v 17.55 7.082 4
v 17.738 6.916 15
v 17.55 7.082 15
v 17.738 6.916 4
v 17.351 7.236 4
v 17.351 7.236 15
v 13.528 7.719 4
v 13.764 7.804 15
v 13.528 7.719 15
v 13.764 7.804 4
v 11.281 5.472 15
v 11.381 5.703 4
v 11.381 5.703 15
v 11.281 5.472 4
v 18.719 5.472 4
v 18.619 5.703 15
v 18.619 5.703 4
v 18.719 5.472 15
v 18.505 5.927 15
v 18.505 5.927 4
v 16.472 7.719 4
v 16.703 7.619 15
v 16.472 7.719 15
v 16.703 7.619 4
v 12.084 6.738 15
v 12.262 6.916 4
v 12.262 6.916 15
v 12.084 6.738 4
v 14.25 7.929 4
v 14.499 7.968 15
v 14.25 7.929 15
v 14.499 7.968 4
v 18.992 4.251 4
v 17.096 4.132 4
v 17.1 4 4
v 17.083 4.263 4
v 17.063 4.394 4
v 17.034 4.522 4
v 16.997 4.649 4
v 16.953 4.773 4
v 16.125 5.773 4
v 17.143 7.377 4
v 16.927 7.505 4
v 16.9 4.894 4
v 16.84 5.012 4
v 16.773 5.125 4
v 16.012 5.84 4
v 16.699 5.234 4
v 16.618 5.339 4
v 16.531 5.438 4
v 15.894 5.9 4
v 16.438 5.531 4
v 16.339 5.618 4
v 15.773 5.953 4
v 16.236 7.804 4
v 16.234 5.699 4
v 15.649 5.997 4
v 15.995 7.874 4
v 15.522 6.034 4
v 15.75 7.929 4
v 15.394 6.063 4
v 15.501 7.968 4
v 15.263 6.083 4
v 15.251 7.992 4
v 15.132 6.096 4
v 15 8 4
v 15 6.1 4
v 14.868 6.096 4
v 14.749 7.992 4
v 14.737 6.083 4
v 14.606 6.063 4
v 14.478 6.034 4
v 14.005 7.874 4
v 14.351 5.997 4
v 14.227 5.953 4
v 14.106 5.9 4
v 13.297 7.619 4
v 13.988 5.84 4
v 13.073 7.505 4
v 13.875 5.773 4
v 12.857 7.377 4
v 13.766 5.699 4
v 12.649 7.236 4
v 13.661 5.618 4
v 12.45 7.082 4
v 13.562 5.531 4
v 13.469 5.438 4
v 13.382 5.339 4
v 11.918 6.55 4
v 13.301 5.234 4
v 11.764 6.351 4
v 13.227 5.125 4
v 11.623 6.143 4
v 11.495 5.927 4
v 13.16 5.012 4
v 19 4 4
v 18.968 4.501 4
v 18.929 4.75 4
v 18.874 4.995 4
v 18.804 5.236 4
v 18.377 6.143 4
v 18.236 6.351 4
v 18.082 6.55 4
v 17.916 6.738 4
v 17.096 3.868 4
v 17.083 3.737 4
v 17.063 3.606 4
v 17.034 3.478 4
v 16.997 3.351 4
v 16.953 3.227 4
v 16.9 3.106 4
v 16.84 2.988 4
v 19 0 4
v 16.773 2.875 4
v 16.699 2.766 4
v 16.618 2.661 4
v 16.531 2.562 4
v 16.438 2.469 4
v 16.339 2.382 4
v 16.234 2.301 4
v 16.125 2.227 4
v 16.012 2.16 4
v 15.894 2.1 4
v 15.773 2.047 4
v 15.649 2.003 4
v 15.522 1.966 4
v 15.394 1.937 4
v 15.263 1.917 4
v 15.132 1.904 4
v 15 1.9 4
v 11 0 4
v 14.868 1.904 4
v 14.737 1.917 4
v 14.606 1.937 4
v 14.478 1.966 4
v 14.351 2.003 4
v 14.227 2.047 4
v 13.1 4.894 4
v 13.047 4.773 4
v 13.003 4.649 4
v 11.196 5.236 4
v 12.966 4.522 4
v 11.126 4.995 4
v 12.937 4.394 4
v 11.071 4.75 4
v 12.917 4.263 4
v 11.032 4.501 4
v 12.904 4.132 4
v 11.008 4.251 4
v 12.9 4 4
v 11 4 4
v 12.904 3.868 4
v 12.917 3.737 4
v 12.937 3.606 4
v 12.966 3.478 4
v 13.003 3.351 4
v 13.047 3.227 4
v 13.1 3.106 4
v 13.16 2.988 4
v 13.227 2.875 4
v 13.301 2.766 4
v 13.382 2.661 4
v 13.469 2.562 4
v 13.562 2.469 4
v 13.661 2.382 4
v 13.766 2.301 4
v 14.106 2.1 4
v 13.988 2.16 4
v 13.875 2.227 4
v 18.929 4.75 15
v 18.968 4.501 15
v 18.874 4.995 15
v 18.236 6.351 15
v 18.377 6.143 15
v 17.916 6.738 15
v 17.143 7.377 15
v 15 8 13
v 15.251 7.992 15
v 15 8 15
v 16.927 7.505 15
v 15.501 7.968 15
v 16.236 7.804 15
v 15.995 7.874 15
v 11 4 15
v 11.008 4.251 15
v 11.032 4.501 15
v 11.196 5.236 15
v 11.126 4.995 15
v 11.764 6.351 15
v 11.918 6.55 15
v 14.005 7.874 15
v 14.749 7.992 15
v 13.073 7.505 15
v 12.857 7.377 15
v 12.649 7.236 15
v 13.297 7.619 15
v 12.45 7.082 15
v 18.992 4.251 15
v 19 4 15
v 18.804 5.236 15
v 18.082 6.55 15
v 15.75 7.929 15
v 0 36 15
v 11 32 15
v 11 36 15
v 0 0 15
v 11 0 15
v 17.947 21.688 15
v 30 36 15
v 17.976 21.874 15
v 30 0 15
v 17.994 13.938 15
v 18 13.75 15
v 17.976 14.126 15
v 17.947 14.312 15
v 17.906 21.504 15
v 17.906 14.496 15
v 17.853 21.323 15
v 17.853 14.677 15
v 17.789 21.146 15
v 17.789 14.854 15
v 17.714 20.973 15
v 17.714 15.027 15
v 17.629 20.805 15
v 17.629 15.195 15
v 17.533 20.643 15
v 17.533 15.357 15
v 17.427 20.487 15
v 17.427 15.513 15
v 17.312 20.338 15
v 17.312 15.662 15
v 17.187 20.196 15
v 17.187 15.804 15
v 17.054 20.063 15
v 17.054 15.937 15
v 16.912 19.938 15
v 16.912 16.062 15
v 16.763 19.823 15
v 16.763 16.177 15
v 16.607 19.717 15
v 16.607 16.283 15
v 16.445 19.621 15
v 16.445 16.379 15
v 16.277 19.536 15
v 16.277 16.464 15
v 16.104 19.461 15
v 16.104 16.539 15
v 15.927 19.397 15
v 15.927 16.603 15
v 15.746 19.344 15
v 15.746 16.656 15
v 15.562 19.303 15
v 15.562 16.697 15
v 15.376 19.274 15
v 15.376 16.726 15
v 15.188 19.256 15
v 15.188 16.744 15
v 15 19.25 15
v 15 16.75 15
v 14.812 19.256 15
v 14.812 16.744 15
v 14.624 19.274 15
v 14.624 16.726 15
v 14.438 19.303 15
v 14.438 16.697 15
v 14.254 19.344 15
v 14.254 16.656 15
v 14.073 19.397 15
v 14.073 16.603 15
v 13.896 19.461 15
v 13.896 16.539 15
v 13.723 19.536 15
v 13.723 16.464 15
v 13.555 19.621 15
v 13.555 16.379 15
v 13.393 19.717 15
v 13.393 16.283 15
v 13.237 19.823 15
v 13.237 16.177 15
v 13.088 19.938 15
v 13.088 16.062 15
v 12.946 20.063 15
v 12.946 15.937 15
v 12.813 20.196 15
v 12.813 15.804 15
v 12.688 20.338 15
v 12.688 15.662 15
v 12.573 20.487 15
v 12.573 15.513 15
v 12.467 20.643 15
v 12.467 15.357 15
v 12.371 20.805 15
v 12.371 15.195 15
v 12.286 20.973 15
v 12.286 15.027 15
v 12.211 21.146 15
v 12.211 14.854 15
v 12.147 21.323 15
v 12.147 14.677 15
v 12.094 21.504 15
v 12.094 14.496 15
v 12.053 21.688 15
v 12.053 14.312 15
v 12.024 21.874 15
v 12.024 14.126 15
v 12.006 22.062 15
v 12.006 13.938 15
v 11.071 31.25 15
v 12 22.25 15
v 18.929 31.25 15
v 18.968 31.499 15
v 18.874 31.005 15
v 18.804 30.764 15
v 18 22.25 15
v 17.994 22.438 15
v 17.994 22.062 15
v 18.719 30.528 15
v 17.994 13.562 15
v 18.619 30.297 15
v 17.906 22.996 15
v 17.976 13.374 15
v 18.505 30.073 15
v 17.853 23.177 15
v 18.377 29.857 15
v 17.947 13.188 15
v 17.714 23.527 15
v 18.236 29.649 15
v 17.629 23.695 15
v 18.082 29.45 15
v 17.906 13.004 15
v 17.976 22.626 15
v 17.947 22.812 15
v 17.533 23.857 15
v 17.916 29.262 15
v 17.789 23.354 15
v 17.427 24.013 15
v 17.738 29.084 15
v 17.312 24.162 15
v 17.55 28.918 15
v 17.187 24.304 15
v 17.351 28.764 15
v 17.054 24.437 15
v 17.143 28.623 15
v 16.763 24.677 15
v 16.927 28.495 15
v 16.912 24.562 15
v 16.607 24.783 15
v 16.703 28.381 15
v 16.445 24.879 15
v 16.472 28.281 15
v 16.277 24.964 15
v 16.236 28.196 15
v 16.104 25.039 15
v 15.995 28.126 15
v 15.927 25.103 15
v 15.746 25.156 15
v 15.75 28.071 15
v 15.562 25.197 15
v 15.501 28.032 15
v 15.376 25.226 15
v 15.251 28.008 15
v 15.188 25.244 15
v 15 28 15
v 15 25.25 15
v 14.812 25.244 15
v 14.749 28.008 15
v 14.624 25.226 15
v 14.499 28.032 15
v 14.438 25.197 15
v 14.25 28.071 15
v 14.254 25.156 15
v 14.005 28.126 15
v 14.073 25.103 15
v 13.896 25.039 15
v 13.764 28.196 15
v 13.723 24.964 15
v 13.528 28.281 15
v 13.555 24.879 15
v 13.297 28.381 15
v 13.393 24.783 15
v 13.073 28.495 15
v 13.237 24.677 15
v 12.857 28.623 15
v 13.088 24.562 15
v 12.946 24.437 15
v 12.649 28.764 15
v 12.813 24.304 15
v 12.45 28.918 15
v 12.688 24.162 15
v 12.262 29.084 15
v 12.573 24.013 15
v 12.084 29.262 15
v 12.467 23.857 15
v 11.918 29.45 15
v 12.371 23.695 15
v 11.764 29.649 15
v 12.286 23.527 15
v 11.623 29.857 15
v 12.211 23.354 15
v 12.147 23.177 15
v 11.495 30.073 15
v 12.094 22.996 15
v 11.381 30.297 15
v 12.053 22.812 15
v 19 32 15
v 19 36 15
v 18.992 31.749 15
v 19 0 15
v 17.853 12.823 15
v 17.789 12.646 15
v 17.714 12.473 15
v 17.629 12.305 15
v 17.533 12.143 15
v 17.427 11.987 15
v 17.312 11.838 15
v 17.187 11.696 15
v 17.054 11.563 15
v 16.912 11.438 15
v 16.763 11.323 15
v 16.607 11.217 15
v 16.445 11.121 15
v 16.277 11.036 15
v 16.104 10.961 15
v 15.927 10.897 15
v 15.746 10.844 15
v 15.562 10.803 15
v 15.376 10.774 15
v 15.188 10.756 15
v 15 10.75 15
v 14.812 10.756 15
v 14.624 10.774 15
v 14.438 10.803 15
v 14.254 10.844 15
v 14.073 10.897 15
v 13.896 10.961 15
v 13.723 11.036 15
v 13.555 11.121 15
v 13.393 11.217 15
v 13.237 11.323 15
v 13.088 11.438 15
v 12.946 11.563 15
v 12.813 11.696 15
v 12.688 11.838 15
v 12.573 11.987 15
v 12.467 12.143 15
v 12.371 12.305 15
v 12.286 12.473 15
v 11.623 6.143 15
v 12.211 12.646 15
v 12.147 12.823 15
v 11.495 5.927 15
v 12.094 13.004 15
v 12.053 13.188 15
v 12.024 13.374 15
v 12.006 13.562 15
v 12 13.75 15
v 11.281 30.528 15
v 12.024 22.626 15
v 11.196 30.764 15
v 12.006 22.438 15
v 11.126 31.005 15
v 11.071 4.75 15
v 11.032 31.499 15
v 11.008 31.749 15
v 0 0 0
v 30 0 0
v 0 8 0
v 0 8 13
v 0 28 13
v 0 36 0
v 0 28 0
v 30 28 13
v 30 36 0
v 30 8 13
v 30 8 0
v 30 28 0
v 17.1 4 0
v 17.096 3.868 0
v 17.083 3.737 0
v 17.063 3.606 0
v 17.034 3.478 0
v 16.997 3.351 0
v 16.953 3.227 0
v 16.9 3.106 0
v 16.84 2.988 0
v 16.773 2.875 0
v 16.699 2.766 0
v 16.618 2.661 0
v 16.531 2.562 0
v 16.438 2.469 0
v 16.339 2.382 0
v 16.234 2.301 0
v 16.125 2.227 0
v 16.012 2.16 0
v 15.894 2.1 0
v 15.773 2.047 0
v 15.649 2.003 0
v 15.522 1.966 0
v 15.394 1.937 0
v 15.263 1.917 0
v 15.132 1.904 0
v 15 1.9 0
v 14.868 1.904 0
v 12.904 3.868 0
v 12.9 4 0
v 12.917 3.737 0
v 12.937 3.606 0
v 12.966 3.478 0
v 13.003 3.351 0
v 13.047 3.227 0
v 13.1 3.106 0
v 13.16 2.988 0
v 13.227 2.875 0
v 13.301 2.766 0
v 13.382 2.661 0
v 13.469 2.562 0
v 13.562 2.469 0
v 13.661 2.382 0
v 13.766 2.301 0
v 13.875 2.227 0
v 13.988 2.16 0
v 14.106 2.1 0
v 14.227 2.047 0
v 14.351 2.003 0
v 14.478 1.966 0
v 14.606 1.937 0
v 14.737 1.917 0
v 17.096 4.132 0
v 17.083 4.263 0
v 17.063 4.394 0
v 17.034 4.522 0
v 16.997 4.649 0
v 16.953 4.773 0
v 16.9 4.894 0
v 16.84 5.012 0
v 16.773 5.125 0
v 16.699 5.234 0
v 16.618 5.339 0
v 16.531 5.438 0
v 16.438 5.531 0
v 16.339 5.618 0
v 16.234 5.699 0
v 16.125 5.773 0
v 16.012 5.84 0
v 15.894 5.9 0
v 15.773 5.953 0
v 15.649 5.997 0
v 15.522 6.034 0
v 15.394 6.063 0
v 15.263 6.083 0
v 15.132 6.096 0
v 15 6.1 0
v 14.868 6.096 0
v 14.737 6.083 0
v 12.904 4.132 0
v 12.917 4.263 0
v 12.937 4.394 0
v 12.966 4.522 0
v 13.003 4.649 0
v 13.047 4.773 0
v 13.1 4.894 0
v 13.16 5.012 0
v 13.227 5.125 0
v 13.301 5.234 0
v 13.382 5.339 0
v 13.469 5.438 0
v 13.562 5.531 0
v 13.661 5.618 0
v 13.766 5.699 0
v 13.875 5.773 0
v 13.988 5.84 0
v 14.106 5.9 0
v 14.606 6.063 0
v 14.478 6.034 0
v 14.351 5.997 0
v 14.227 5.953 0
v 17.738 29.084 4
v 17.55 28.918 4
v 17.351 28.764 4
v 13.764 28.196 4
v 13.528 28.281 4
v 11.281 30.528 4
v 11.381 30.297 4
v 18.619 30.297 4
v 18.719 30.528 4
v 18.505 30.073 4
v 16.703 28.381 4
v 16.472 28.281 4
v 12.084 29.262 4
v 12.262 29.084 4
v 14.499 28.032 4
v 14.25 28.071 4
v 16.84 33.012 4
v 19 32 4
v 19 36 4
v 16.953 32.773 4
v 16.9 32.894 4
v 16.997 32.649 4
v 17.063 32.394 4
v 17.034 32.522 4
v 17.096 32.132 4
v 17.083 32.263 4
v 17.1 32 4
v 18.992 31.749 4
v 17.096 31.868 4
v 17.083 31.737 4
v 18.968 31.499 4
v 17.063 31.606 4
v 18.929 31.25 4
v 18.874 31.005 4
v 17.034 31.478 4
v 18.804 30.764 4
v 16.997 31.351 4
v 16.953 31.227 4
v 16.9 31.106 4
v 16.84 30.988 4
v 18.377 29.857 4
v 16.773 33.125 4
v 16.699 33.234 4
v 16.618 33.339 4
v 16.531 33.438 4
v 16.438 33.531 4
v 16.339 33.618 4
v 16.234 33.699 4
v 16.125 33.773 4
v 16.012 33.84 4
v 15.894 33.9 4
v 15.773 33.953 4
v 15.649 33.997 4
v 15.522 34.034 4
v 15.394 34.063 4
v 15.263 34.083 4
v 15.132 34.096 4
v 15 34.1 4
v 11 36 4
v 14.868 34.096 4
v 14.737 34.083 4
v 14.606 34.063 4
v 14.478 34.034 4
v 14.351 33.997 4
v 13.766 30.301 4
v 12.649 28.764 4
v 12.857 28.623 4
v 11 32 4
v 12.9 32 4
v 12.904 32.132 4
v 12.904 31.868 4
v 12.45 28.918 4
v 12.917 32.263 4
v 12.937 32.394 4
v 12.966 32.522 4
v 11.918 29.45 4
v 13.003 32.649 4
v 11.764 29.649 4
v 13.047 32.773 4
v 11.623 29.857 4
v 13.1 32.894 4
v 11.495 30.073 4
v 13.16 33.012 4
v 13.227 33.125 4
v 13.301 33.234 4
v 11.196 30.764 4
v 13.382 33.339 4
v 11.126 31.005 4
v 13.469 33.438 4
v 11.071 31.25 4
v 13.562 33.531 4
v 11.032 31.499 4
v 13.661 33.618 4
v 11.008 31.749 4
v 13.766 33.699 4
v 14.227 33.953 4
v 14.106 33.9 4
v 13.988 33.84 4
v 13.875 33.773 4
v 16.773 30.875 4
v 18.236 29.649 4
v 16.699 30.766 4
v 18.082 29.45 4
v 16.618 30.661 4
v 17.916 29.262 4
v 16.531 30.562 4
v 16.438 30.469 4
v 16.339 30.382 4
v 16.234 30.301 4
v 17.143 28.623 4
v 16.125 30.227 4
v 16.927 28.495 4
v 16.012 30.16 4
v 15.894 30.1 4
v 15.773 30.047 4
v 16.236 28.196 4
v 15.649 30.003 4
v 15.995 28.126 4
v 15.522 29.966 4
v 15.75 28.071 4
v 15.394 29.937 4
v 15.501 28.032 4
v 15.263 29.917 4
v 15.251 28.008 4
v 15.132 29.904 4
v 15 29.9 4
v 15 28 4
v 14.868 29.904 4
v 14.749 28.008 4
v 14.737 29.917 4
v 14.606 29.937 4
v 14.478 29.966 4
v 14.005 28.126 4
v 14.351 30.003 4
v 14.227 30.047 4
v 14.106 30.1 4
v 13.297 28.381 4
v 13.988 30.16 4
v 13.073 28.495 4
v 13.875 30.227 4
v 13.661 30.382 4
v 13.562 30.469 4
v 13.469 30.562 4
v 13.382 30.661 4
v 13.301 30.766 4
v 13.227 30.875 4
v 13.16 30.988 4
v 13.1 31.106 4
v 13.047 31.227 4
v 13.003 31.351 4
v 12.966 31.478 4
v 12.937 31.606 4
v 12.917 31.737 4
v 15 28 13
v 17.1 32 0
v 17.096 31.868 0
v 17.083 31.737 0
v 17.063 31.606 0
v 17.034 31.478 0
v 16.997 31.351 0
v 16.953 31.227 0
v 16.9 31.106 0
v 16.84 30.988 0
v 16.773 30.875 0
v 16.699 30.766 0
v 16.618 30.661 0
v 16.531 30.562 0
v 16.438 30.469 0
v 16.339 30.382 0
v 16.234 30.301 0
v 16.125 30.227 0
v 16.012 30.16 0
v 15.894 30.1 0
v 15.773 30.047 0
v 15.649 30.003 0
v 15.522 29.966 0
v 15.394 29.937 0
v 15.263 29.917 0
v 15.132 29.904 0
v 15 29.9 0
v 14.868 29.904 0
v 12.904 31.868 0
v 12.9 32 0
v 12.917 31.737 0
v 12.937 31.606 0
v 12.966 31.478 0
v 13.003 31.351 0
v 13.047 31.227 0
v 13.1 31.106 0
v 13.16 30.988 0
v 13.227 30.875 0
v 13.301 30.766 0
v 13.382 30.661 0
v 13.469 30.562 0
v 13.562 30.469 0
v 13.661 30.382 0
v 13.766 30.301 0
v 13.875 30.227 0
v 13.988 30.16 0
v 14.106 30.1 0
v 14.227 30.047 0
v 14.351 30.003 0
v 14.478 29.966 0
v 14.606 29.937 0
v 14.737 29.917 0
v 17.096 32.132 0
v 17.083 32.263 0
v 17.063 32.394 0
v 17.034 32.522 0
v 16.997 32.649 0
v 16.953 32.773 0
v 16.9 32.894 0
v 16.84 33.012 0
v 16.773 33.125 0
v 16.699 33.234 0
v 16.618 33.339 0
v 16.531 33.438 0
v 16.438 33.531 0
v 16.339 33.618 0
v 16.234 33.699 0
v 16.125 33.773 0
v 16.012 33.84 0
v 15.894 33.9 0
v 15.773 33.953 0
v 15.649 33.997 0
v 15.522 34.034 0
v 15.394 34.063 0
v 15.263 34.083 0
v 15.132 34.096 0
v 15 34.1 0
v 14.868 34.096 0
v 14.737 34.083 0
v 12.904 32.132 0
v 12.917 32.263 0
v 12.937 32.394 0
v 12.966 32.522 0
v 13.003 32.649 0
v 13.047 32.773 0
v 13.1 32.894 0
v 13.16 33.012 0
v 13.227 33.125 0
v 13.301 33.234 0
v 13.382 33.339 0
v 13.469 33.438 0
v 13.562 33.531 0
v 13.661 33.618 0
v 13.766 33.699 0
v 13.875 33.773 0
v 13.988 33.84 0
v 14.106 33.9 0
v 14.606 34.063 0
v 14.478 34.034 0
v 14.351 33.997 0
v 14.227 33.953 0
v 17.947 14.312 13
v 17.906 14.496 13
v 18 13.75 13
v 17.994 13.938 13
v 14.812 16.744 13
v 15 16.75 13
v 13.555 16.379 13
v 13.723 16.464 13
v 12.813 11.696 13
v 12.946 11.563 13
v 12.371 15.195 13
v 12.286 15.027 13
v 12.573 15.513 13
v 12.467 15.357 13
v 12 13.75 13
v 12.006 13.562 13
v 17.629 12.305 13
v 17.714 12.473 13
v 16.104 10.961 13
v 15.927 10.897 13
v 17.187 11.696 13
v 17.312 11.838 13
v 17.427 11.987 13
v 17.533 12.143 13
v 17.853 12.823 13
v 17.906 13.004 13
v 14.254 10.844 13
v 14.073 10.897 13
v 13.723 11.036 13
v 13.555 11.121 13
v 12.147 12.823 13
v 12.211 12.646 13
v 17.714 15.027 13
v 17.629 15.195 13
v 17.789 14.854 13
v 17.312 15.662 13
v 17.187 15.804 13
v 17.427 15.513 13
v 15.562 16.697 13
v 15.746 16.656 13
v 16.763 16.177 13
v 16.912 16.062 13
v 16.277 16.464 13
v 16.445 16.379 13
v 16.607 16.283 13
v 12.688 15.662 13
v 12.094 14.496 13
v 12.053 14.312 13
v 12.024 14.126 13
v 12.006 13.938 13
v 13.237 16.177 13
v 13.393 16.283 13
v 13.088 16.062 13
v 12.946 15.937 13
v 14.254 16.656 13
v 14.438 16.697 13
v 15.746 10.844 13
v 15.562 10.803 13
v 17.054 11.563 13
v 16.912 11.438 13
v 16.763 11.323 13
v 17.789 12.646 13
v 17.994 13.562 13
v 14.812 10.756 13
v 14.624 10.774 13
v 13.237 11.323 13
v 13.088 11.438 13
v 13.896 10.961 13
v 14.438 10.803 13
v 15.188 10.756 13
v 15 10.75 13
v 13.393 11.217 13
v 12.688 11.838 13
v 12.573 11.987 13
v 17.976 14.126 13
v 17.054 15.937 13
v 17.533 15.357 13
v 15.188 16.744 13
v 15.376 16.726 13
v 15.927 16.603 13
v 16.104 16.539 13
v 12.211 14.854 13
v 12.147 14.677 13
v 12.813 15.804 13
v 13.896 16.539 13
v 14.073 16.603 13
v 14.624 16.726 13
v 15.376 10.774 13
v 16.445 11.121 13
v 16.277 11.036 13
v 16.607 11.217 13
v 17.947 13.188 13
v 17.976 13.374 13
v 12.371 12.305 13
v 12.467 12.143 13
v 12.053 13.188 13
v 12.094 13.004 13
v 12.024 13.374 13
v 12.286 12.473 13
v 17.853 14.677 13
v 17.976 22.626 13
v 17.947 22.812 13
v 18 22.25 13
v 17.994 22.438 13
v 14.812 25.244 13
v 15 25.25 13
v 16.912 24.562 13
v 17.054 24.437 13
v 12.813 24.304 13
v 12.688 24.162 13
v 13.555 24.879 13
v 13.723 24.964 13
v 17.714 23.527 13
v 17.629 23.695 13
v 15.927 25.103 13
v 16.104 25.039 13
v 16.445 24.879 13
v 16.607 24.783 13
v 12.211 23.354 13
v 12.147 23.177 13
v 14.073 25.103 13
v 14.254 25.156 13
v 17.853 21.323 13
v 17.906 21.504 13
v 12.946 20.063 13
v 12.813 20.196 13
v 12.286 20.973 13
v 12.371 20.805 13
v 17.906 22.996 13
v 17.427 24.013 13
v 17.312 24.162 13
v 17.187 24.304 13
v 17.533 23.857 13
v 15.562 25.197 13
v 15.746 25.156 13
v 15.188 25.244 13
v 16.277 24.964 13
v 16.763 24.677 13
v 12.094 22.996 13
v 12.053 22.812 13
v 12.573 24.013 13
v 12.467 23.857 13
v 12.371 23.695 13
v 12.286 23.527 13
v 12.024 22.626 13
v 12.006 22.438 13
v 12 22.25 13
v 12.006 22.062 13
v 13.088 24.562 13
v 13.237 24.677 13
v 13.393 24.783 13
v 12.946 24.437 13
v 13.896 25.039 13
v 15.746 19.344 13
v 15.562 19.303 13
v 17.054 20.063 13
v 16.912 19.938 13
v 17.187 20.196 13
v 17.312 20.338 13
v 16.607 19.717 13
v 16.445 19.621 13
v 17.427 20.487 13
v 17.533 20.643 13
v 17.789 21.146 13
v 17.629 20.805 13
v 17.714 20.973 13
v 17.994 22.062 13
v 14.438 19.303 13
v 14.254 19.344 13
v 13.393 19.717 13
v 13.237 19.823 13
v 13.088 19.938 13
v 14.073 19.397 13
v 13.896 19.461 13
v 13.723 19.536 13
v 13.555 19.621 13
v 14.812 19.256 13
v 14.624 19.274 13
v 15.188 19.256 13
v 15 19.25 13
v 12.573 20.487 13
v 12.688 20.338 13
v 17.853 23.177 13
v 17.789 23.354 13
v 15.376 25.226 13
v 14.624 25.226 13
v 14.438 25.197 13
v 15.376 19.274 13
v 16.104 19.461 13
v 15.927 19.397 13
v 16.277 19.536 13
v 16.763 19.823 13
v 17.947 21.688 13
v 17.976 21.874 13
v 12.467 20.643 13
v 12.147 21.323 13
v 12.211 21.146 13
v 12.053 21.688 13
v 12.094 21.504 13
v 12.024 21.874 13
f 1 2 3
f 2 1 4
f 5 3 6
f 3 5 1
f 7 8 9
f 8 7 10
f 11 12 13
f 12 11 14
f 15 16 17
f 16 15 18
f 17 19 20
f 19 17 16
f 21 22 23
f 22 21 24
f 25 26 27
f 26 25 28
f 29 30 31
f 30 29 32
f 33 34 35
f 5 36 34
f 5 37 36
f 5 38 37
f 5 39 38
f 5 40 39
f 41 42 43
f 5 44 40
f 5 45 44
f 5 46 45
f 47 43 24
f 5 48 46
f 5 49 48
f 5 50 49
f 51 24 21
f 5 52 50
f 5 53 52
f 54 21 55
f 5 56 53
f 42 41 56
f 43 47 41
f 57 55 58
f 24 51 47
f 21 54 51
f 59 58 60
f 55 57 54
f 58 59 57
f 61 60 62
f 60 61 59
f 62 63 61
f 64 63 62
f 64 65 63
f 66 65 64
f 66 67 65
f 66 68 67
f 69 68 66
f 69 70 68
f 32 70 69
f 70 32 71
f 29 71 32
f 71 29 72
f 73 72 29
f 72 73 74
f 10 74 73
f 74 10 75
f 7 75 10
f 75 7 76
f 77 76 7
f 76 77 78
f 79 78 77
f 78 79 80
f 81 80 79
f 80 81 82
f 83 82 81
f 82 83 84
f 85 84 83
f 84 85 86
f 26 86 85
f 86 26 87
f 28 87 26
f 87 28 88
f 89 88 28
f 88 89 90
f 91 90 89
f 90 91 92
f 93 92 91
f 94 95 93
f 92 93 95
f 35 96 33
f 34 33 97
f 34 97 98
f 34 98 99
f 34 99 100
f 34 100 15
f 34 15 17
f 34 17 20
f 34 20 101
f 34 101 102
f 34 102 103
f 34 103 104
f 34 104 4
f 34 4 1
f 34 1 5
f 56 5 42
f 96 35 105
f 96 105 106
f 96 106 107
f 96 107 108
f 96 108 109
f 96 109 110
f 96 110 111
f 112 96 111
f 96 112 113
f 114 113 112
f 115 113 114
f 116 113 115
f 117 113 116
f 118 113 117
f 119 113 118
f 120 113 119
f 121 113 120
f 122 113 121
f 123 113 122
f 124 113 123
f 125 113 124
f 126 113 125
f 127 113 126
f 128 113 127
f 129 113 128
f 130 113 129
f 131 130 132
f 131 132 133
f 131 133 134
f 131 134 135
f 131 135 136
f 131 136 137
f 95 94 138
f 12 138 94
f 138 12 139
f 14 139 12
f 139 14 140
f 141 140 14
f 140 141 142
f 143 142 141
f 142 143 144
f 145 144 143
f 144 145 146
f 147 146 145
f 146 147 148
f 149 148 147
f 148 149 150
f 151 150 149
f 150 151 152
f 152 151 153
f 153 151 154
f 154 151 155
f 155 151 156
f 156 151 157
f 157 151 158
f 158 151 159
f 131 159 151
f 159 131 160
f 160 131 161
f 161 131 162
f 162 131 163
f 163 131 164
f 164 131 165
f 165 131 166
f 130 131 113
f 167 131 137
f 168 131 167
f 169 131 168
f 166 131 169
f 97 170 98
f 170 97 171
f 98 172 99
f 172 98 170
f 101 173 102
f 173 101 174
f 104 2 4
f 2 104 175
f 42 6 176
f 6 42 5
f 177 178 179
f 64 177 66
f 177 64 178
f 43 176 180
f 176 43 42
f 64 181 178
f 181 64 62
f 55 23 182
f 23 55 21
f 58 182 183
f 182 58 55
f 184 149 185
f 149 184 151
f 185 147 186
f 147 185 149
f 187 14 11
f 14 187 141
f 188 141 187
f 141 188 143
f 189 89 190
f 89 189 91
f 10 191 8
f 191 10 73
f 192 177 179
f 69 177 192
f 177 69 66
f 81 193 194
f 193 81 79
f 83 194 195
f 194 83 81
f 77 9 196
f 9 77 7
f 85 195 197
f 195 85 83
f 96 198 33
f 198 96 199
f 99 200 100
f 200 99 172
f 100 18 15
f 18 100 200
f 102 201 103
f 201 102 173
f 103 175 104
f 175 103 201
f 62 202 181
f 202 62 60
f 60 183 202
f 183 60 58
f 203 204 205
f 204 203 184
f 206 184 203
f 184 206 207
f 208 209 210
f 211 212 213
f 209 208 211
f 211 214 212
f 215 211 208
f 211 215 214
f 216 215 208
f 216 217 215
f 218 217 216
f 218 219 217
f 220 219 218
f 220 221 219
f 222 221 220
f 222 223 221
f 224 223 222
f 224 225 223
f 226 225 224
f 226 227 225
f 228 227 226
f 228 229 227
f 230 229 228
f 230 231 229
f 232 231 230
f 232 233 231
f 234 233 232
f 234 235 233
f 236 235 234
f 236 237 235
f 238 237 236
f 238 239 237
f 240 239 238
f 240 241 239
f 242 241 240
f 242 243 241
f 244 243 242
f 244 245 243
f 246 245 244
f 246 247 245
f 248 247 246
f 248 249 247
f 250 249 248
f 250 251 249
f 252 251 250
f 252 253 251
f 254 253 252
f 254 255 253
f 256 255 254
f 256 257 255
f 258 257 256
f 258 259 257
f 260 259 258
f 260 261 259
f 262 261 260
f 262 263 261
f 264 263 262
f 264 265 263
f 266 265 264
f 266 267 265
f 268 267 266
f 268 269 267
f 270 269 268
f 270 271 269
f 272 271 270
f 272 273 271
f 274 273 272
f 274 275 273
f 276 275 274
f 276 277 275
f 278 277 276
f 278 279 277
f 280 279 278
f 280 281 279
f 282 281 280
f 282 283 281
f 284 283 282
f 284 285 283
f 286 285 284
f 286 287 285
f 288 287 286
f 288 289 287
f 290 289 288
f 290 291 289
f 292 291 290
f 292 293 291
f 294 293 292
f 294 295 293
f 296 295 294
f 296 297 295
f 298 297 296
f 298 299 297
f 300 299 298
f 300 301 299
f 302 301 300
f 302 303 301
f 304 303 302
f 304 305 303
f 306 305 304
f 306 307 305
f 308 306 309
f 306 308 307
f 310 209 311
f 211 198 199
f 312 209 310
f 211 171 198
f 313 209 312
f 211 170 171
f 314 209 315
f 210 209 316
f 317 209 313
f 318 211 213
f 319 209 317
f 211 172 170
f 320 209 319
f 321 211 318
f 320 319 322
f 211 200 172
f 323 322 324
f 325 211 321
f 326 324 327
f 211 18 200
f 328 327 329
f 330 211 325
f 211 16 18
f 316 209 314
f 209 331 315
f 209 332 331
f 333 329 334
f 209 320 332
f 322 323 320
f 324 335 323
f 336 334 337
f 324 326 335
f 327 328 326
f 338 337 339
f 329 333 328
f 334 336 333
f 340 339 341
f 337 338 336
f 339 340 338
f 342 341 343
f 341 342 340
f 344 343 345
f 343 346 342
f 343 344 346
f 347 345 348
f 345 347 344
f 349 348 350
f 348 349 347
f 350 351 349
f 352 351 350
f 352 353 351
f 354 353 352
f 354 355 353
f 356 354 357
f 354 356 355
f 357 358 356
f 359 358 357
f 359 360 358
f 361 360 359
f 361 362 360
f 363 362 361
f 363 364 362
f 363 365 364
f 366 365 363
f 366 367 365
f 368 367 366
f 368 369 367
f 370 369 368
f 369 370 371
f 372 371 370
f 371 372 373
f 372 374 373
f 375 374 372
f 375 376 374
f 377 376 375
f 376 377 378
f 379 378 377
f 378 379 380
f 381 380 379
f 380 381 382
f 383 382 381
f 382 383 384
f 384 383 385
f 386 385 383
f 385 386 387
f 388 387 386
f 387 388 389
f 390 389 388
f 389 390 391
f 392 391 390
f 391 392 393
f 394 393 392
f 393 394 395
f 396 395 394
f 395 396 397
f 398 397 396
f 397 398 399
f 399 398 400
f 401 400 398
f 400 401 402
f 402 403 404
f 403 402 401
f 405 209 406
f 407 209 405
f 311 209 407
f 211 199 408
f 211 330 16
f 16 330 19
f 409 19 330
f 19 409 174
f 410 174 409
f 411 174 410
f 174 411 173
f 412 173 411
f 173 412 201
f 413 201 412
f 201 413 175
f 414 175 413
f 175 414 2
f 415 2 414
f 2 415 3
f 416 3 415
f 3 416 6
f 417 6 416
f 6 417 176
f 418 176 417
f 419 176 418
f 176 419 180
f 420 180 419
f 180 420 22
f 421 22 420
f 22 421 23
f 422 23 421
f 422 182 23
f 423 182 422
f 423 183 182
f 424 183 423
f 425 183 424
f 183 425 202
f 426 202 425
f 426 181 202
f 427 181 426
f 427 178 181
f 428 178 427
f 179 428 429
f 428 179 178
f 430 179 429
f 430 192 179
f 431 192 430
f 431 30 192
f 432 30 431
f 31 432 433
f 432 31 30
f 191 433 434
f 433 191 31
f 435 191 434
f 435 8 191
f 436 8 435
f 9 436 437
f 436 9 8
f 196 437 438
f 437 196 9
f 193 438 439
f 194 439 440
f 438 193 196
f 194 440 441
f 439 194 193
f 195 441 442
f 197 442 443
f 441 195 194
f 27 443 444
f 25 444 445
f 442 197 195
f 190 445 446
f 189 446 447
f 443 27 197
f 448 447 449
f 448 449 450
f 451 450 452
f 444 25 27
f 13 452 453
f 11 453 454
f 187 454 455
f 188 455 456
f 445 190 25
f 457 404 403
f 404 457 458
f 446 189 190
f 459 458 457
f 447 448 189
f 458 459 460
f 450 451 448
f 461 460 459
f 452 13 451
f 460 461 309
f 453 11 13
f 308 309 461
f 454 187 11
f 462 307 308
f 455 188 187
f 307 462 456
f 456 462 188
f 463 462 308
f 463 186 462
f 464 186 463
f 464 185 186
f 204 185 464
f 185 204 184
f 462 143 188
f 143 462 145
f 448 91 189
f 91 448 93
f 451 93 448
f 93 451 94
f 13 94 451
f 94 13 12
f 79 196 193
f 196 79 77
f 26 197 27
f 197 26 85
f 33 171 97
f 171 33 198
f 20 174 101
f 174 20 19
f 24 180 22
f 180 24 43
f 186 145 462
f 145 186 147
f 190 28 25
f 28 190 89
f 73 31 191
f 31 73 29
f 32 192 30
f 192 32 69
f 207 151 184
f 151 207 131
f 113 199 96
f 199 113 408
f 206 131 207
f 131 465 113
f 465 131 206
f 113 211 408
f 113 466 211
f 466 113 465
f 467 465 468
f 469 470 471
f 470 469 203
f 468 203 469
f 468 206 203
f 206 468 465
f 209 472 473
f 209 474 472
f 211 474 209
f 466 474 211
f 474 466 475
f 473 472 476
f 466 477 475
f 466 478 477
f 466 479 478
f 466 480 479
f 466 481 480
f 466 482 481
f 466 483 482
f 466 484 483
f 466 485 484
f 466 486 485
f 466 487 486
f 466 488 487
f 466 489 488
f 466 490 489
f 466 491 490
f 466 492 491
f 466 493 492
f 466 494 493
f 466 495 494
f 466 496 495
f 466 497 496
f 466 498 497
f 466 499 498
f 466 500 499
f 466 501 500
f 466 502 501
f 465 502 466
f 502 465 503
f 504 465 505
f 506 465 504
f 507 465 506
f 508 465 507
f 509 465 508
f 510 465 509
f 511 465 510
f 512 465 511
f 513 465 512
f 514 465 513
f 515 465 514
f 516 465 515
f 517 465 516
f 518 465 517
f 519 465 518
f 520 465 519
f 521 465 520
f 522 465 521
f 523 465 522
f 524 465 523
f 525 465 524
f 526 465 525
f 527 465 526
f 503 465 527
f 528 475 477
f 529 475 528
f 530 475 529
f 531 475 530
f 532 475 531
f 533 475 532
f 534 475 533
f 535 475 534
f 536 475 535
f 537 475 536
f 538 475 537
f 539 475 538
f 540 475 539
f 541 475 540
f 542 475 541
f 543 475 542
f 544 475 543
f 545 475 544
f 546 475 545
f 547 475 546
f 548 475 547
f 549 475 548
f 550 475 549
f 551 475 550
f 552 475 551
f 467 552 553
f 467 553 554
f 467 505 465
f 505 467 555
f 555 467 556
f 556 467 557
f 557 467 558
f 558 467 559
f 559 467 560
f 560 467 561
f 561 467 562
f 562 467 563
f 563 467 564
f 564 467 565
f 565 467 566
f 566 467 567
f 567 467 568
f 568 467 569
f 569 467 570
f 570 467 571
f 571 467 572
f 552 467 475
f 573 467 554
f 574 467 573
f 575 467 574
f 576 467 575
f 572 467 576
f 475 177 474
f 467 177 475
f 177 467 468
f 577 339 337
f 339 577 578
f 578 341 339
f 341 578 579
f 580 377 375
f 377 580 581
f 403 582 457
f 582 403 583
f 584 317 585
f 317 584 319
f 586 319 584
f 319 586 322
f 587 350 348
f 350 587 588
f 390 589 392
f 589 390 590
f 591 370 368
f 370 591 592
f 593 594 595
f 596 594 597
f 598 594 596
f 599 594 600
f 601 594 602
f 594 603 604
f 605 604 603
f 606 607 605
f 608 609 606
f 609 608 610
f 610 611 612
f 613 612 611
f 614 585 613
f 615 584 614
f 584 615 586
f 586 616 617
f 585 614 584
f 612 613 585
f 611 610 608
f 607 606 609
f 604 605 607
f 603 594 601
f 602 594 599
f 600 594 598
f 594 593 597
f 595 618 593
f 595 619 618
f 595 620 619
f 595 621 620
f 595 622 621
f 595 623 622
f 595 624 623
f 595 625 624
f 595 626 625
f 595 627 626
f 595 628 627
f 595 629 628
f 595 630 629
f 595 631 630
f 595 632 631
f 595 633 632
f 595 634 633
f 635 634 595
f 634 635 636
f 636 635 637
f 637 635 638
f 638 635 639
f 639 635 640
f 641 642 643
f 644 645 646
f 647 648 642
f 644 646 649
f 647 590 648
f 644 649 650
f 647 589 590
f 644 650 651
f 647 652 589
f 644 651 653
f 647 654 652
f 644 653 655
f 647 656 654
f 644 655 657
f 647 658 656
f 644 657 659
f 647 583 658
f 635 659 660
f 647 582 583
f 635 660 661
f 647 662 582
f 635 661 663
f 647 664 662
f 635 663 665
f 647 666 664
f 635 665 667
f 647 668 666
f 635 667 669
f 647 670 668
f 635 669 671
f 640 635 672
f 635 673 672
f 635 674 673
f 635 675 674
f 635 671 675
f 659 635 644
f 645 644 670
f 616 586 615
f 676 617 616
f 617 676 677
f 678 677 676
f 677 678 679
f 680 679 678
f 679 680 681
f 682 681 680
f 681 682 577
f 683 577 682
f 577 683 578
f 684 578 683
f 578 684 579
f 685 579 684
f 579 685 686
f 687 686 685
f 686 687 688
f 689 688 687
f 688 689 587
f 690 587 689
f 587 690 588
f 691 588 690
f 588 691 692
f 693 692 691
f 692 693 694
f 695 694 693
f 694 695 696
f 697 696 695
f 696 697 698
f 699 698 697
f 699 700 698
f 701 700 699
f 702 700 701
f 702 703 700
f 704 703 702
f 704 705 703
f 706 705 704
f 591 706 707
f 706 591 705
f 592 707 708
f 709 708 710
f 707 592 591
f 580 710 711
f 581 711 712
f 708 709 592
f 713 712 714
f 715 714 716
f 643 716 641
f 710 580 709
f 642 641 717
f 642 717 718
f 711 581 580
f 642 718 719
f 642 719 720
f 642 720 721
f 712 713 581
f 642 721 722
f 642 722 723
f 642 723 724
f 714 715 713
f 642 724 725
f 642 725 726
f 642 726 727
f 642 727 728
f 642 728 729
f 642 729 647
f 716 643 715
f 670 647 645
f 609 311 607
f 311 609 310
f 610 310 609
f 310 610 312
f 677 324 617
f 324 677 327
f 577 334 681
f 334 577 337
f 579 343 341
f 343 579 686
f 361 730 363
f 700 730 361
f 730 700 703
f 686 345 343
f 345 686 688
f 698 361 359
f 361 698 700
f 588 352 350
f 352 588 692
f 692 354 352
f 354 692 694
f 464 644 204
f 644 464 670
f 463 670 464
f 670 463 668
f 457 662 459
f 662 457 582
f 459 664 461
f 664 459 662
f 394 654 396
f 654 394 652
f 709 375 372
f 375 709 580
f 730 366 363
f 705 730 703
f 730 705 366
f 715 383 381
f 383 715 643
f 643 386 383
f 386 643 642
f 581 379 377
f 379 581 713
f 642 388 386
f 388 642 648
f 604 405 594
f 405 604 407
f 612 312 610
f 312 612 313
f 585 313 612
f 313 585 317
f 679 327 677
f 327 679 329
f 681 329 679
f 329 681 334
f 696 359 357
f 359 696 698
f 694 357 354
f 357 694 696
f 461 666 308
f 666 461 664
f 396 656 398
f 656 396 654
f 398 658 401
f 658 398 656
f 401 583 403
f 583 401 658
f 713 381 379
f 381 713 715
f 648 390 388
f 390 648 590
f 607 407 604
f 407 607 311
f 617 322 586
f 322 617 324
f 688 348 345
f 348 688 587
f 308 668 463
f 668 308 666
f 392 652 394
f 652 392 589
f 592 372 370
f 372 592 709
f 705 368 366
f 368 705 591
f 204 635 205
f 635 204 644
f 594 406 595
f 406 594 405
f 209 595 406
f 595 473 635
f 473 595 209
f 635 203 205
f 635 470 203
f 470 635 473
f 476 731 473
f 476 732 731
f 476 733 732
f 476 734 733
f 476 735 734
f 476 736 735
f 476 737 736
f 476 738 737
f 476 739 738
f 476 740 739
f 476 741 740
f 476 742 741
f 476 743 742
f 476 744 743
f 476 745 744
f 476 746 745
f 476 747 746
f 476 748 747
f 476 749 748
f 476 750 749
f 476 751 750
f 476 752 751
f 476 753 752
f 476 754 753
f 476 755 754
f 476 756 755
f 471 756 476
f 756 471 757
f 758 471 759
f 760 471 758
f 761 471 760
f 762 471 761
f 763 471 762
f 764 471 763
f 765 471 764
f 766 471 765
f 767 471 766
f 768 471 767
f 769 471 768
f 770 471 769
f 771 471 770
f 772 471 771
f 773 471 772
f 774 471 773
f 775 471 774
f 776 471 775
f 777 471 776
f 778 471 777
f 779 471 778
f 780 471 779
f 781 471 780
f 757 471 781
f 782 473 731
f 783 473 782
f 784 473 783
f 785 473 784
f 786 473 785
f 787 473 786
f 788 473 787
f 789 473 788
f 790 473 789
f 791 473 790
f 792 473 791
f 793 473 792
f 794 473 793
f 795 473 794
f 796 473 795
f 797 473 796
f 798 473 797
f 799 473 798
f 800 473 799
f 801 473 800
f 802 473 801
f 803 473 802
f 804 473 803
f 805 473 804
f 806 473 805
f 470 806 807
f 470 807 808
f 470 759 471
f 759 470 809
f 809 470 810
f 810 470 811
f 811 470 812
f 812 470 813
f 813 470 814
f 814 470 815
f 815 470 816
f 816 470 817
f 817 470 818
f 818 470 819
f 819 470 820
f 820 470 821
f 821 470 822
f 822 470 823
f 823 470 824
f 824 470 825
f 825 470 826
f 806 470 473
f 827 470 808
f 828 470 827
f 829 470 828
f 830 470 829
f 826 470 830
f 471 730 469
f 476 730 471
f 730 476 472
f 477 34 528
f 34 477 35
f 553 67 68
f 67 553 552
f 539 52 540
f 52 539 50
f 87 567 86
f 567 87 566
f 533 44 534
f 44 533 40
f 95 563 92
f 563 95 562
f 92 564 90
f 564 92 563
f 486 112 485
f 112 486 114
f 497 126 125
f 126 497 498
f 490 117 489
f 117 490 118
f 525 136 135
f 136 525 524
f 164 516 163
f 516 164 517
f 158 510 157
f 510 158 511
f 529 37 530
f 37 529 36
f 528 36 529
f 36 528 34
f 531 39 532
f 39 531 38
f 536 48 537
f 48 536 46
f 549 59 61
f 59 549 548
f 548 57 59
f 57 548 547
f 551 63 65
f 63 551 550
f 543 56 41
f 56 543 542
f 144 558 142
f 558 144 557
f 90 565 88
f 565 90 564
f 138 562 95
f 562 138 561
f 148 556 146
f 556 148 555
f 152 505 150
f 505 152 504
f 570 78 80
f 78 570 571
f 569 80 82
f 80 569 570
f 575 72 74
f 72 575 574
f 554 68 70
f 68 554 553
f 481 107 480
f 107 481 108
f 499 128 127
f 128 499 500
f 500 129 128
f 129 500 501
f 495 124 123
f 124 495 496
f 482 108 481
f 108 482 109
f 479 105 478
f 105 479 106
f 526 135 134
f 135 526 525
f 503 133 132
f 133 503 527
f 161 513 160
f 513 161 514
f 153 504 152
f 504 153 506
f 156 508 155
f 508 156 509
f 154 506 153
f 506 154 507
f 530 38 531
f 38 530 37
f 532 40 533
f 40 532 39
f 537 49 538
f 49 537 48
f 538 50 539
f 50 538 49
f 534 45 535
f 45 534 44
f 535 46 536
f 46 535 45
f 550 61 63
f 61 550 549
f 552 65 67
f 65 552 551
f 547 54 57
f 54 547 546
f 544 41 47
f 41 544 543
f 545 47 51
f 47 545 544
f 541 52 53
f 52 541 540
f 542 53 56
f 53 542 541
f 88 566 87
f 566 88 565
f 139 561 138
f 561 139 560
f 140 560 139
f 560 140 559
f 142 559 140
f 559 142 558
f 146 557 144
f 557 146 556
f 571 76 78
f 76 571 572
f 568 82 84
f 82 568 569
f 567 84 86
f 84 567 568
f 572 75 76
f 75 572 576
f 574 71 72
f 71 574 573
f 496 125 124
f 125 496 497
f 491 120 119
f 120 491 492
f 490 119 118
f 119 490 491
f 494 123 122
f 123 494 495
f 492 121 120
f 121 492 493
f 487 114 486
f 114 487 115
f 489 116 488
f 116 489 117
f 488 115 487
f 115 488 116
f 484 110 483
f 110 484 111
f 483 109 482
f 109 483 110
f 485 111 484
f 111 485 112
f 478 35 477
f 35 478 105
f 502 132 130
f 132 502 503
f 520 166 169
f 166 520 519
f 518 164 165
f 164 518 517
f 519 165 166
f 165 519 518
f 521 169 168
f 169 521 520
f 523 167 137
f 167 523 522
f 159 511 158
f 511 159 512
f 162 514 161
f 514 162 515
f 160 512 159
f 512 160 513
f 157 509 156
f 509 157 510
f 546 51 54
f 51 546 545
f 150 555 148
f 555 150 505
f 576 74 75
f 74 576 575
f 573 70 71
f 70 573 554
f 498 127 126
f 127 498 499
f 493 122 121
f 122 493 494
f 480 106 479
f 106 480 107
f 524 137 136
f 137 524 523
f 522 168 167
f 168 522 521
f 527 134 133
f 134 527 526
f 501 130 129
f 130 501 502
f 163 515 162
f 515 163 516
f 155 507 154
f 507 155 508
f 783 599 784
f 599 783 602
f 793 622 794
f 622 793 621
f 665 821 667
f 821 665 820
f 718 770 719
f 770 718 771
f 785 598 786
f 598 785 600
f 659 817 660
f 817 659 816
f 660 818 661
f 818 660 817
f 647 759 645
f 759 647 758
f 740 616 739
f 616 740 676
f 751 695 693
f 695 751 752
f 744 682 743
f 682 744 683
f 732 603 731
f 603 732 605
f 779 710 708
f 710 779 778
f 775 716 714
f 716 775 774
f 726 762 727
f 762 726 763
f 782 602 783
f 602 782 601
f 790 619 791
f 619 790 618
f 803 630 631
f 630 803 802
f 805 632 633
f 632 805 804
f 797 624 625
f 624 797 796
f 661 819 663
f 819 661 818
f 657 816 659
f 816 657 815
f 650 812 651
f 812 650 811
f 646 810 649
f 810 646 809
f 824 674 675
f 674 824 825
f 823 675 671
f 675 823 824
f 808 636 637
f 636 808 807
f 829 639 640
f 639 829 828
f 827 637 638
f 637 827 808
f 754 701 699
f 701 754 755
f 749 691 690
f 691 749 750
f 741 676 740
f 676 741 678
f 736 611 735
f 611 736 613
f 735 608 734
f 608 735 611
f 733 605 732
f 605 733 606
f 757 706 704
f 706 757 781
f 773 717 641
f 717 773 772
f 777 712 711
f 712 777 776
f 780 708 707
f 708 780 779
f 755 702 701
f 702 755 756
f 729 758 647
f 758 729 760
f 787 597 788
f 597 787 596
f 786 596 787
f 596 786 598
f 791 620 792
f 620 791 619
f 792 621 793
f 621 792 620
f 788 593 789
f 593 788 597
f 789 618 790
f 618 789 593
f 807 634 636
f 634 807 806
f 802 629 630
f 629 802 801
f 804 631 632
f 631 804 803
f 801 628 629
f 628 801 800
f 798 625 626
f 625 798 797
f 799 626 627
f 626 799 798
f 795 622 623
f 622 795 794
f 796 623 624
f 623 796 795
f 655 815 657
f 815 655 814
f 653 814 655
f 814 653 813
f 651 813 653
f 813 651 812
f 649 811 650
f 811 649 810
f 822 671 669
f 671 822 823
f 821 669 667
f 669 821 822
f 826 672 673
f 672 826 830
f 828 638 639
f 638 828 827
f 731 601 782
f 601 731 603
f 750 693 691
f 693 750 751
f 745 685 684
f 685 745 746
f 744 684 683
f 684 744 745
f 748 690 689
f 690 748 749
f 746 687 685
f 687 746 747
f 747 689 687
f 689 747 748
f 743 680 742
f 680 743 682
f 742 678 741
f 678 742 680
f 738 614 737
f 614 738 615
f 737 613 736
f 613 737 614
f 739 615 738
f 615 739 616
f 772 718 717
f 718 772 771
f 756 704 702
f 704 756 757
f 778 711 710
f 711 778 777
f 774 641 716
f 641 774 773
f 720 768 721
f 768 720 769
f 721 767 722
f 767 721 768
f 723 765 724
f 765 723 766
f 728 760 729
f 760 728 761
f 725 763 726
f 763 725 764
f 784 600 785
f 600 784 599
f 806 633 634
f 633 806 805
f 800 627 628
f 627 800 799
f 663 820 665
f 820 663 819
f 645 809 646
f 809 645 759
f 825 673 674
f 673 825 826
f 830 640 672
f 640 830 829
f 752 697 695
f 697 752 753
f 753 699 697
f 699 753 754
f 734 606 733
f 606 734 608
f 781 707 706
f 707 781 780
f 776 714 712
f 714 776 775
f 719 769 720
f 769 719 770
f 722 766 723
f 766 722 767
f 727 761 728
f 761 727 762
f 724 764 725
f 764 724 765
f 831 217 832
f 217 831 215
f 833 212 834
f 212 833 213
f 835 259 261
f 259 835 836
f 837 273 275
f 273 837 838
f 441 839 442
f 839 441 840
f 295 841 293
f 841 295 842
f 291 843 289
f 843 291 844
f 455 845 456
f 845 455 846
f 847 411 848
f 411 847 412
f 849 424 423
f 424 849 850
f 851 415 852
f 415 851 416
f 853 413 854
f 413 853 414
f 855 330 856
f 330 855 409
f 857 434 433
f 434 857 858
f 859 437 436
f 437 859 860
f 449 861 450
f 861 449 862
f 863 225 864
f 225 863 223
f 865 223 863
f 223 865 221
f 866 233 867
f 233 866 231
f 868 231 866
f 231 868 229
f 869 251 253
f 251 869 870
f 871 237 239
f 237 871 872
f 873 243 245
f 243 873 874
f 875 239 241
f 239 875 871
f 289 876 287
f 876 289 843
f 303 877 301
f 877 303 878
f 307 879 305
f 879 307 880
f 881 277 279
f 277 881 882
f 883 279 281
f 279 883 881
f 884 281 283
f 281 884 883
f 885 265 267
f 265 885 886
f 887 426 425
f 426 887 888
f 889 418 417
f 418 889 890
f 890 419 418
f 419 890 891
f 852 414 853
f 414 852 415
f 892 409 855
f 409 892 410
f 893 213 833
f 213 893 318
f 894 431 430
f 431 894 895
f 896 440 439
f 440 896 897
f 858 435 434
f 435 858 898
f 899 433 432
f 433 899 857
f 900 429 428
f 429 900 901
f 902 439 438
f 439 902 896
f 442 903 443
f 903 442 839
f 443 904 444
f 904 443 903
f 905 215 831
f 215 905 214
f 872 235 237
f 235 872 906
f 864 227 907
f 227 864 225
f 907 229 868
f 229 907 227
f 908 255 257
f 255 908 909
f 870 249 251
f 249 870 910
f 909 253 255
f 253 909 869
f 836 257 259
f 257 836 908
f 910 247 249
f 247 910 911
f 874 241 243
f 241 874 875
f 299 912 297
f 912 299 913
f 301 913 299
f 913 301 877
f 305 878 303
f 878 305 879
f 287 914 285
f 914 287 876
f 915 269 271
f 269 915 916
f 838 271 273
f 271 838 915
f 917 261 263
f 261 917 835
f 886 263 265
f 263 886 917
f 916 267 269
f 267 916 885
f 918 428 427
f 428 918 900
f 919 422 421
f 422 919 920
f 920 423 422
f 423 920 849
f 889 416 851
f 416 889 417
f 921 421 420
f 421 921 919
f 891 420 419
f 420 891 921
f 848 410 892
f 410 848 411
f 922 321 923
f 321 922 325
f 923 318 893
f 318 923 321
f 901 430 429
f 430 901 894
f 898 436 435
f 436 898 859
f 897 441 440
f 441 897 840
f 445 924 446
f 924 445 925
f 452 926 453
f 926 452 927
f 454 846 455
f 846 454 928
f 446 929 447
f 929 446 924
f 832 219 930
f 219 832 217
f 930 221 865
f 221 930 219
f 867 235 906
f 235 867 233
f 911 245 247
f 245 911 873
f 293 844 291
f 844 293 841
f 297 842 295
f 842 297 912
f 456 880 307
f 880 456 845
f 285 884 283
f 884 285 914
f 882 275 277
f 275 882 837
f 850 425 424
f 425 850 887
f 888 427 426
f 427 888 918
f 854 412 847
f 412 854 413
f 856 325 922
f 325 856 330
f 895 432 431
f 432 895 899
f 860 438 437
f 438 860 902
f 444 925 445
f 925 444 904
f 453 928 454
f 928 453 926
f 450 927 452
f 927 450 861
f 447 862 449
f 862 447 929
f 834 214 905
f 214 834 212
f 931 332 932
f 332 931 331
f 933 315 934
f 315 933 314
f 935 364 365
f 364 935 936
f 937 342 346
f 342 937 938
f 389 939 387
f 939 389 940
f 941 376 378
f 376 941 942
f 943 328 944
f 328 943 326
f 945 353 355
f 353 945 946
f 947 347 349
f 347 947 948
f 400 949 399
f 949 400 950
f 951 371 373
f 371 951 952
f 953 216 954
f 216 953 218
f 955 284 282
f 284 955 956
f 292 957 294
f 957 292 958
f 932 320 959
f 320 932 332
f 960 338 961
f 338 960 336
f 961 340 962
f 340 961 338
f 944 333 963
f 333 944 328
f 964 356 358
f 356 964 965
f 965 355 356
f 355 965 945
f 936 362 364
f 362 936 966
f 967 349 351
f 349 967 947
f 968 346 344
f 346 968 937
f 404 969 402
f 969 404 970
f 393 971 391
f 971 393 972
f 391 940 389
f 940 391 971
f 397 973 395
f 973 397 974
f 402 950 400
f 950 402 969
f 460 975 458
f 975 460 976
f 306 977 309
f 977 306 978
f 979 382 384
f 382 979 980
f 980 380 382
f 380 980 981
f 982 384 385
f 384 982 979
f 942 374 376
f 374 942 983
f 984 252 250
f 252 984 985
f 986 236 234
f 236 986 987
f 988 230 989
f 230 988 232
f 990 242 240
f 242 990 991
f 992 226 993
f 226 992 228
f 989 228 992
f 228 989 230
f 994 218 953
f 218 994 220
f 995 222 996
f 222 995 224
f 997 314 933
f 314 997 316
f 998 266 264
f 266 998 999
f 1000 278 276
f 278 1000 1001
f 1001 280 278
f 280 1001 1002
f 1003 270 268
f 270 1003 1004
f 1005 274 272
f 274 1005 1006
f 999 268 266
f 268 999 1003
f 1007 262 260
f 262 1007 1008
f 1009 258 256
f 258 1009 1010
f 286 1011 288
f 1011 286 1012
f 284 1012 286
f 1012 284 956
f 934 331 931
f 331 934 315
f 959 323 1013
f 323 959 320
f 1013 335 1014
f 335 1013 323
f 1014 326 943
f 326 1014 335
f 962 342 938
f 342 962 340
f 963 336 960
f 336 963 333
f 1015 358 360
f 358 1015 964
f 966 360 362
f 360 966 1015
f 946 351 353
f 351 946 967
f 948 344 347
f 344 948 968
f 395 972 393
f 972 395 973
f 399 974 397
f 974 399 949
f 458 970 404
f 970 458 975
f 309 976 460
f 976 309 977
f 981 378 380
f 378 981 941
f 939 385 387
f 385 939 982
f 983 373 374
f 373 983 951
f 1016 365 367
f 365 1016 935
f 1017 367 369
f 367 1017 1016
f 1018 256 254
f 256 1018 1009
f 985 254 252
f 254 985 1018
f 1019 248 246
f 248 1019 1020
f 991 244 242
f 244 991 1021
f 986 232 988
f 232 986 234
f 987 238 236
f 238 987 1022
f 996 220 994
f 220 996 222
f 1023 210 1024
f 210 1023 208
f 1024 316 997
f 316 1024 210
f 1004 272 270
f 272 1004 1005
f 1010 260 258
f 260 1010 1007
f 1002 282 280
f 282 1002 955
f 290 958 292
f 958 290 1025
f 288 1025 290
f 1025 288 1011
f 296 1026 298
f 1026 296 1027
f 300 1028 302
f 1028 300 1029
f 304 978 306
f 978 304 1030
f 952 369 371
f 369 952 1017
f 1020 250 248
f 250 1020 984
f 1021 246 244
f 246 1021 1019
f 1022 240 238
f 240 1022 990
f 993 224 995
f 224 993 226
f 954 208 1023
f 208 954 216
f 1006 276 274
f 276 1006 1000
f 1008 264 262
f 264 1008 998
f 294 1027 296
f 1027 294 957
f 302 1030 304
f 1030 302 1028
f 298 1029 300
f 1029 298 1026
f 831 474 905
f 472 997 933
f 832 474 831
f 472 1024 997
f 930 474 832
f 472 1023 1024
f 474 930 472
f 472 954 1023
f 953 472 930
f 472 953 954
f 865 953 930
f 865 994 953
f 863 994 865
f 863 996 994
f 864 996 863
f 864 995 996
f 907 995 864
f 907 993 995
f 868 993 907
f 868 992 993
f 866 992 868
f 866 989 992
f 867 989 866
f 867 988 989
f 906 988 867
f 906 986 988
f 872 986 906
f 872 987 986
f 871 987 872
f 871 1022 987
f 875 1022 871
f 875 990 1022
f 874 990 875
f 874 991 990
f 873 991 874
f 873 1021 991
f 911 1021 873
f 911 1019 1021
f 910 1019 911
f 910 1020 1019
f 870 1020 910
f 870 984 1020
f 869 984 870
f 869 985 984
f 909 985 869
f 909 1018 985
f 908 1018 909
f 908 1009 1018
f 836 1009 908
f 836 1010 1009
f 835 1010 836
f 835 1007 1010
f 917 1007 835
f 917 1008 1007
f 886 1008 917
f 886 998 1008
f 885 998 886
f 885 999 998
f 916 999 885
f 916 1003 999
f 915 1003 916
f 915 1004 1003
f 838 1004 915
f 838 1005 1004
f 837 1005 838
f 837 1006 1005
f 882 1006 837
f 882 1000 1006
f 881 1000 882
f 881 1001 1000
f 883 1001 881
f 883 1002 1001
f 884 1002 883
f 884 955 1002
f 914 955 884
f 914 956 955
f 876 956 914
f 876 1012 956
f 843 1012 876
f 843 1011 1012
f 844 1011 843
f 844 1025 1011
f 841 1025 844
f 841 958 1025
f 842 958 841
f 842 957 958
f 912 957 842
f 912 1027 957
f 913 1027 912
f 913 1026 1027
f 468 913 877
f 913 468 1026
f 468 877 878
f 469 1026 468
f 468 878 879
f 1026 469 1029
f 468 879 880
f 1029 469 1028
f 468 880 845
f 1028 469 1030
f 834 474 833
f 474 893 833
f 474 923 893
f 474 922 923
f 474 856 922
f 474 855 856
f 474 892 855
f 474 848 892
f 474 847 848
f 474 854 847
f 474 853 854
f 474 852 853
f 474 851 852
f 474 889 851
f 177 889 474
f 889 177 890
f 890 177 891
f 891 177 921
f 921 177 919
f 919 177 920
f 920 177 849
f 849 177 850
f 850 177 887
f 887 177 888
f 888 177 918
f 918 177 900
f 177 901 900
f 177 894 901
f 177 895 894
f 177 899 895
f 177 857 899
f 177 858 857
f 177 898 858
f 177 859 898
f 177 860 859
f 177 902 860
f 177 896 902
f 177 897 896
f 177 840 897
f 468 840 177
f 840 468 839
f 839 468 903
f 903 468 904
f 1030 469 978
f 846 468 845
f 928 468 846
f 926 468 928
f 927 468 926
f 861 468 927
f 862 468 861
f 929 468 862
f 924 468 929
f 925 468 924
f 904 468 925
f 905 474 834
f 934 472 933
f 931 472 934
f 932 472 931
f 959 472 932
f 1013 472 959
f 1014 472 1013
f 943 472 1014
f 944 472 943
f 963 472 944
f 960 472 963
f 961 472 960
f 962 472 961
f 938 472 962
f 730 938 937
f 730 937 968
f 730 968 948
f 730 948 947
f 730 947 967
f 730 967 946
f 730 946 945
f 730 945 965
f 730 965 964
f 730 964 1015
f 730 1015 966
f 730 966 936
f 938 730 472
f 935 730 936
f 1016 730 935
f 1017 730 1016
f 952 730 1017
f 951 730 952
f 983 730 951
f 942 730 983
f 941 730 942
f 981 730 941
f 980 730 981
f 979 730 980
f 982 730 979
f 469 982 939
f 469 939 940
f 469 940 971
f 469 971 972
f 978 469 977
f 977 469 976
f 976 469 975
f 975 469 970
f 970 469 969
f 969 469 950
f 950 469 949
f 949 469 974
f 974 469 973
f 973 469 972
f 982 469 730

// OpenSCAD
terminal_grp_cnt = 1; //x2
terminal_grp_len = 2 * 8.5; //mm

terminal_grp_pos_x = 15; //mm
terminal_grp_pos_y = 18; //mm

terminal_grp_height = 13; //mm
terminal_grp_width = 13; //mm

body_hight = 15; //mm
body_len = 30; //mm
body_width = 8; //mm
body_grp_width = 36 - terminal_grp_len; //mm
body_full_width = body_grp_width + terminal_grp_cnt * terminal_grp_len;

terminal_top_hight = body_hight - terminal_grp_height;
terminal_top_dia = 6; //mm

hole_dia = 4.2; //mm
hole_pos_x = 15; //mm
hole_pos_y = 4; //mm

hole_screw_hight = 4; //mm
hole_screw_dia = 8; //mm

$fn = 100;

echo("full width = ", body_full_width);

module foot() {
    difference() {
        translate([0, 0, 0])
            cube([body_len, body_width, body_hight]);
        translate([hole_pos_x, hole_pos_y, hole_screw_hight])
            union() {
                cylinder(body_hight - hole_screw_hight, r = hole_screw_dia / 2);
                translate([-hole_screw_dia / 2, -hole_screw_dia / 2, 0])
                    cube([hole_screw_dia, hole_screw_dia / 2, body_hight - hole_screw_hight]);
            }
    }
}

difference() {
    union() {
        translate([0, 0, 0])
            rotate(0)
                foot();
        translate([0, body_full_width, 0])
            mirror([0, 1, 0])
                foot();
    }
    union() {
        translate([hole_pos_x, hole_pos_y, 0])
            cylinder(body_hight, r = hole_dia / 2);
        translate([hole_pos_x, body_full_width - hole_pos_y, 0])
            cylinder(body_hight, r = hole_dia / 2);
    }
}

difference() {
    translate([0, body_width, body_hight - terminal_top_hight])
        cube([body_len, body_full_width - body_width * 2, terminal_top_hight]);
    union() {
        for(i = [1: terminal_grp_cnt * 2])
            translate([body_len / 2, terminal_grp_pos_y - 3 * terminal_grp_len / 4 + i * (terminal_grp_len / 2), 0])
                cylinder(body_hight, r = terminal_top_dia / 2);
    }
}
